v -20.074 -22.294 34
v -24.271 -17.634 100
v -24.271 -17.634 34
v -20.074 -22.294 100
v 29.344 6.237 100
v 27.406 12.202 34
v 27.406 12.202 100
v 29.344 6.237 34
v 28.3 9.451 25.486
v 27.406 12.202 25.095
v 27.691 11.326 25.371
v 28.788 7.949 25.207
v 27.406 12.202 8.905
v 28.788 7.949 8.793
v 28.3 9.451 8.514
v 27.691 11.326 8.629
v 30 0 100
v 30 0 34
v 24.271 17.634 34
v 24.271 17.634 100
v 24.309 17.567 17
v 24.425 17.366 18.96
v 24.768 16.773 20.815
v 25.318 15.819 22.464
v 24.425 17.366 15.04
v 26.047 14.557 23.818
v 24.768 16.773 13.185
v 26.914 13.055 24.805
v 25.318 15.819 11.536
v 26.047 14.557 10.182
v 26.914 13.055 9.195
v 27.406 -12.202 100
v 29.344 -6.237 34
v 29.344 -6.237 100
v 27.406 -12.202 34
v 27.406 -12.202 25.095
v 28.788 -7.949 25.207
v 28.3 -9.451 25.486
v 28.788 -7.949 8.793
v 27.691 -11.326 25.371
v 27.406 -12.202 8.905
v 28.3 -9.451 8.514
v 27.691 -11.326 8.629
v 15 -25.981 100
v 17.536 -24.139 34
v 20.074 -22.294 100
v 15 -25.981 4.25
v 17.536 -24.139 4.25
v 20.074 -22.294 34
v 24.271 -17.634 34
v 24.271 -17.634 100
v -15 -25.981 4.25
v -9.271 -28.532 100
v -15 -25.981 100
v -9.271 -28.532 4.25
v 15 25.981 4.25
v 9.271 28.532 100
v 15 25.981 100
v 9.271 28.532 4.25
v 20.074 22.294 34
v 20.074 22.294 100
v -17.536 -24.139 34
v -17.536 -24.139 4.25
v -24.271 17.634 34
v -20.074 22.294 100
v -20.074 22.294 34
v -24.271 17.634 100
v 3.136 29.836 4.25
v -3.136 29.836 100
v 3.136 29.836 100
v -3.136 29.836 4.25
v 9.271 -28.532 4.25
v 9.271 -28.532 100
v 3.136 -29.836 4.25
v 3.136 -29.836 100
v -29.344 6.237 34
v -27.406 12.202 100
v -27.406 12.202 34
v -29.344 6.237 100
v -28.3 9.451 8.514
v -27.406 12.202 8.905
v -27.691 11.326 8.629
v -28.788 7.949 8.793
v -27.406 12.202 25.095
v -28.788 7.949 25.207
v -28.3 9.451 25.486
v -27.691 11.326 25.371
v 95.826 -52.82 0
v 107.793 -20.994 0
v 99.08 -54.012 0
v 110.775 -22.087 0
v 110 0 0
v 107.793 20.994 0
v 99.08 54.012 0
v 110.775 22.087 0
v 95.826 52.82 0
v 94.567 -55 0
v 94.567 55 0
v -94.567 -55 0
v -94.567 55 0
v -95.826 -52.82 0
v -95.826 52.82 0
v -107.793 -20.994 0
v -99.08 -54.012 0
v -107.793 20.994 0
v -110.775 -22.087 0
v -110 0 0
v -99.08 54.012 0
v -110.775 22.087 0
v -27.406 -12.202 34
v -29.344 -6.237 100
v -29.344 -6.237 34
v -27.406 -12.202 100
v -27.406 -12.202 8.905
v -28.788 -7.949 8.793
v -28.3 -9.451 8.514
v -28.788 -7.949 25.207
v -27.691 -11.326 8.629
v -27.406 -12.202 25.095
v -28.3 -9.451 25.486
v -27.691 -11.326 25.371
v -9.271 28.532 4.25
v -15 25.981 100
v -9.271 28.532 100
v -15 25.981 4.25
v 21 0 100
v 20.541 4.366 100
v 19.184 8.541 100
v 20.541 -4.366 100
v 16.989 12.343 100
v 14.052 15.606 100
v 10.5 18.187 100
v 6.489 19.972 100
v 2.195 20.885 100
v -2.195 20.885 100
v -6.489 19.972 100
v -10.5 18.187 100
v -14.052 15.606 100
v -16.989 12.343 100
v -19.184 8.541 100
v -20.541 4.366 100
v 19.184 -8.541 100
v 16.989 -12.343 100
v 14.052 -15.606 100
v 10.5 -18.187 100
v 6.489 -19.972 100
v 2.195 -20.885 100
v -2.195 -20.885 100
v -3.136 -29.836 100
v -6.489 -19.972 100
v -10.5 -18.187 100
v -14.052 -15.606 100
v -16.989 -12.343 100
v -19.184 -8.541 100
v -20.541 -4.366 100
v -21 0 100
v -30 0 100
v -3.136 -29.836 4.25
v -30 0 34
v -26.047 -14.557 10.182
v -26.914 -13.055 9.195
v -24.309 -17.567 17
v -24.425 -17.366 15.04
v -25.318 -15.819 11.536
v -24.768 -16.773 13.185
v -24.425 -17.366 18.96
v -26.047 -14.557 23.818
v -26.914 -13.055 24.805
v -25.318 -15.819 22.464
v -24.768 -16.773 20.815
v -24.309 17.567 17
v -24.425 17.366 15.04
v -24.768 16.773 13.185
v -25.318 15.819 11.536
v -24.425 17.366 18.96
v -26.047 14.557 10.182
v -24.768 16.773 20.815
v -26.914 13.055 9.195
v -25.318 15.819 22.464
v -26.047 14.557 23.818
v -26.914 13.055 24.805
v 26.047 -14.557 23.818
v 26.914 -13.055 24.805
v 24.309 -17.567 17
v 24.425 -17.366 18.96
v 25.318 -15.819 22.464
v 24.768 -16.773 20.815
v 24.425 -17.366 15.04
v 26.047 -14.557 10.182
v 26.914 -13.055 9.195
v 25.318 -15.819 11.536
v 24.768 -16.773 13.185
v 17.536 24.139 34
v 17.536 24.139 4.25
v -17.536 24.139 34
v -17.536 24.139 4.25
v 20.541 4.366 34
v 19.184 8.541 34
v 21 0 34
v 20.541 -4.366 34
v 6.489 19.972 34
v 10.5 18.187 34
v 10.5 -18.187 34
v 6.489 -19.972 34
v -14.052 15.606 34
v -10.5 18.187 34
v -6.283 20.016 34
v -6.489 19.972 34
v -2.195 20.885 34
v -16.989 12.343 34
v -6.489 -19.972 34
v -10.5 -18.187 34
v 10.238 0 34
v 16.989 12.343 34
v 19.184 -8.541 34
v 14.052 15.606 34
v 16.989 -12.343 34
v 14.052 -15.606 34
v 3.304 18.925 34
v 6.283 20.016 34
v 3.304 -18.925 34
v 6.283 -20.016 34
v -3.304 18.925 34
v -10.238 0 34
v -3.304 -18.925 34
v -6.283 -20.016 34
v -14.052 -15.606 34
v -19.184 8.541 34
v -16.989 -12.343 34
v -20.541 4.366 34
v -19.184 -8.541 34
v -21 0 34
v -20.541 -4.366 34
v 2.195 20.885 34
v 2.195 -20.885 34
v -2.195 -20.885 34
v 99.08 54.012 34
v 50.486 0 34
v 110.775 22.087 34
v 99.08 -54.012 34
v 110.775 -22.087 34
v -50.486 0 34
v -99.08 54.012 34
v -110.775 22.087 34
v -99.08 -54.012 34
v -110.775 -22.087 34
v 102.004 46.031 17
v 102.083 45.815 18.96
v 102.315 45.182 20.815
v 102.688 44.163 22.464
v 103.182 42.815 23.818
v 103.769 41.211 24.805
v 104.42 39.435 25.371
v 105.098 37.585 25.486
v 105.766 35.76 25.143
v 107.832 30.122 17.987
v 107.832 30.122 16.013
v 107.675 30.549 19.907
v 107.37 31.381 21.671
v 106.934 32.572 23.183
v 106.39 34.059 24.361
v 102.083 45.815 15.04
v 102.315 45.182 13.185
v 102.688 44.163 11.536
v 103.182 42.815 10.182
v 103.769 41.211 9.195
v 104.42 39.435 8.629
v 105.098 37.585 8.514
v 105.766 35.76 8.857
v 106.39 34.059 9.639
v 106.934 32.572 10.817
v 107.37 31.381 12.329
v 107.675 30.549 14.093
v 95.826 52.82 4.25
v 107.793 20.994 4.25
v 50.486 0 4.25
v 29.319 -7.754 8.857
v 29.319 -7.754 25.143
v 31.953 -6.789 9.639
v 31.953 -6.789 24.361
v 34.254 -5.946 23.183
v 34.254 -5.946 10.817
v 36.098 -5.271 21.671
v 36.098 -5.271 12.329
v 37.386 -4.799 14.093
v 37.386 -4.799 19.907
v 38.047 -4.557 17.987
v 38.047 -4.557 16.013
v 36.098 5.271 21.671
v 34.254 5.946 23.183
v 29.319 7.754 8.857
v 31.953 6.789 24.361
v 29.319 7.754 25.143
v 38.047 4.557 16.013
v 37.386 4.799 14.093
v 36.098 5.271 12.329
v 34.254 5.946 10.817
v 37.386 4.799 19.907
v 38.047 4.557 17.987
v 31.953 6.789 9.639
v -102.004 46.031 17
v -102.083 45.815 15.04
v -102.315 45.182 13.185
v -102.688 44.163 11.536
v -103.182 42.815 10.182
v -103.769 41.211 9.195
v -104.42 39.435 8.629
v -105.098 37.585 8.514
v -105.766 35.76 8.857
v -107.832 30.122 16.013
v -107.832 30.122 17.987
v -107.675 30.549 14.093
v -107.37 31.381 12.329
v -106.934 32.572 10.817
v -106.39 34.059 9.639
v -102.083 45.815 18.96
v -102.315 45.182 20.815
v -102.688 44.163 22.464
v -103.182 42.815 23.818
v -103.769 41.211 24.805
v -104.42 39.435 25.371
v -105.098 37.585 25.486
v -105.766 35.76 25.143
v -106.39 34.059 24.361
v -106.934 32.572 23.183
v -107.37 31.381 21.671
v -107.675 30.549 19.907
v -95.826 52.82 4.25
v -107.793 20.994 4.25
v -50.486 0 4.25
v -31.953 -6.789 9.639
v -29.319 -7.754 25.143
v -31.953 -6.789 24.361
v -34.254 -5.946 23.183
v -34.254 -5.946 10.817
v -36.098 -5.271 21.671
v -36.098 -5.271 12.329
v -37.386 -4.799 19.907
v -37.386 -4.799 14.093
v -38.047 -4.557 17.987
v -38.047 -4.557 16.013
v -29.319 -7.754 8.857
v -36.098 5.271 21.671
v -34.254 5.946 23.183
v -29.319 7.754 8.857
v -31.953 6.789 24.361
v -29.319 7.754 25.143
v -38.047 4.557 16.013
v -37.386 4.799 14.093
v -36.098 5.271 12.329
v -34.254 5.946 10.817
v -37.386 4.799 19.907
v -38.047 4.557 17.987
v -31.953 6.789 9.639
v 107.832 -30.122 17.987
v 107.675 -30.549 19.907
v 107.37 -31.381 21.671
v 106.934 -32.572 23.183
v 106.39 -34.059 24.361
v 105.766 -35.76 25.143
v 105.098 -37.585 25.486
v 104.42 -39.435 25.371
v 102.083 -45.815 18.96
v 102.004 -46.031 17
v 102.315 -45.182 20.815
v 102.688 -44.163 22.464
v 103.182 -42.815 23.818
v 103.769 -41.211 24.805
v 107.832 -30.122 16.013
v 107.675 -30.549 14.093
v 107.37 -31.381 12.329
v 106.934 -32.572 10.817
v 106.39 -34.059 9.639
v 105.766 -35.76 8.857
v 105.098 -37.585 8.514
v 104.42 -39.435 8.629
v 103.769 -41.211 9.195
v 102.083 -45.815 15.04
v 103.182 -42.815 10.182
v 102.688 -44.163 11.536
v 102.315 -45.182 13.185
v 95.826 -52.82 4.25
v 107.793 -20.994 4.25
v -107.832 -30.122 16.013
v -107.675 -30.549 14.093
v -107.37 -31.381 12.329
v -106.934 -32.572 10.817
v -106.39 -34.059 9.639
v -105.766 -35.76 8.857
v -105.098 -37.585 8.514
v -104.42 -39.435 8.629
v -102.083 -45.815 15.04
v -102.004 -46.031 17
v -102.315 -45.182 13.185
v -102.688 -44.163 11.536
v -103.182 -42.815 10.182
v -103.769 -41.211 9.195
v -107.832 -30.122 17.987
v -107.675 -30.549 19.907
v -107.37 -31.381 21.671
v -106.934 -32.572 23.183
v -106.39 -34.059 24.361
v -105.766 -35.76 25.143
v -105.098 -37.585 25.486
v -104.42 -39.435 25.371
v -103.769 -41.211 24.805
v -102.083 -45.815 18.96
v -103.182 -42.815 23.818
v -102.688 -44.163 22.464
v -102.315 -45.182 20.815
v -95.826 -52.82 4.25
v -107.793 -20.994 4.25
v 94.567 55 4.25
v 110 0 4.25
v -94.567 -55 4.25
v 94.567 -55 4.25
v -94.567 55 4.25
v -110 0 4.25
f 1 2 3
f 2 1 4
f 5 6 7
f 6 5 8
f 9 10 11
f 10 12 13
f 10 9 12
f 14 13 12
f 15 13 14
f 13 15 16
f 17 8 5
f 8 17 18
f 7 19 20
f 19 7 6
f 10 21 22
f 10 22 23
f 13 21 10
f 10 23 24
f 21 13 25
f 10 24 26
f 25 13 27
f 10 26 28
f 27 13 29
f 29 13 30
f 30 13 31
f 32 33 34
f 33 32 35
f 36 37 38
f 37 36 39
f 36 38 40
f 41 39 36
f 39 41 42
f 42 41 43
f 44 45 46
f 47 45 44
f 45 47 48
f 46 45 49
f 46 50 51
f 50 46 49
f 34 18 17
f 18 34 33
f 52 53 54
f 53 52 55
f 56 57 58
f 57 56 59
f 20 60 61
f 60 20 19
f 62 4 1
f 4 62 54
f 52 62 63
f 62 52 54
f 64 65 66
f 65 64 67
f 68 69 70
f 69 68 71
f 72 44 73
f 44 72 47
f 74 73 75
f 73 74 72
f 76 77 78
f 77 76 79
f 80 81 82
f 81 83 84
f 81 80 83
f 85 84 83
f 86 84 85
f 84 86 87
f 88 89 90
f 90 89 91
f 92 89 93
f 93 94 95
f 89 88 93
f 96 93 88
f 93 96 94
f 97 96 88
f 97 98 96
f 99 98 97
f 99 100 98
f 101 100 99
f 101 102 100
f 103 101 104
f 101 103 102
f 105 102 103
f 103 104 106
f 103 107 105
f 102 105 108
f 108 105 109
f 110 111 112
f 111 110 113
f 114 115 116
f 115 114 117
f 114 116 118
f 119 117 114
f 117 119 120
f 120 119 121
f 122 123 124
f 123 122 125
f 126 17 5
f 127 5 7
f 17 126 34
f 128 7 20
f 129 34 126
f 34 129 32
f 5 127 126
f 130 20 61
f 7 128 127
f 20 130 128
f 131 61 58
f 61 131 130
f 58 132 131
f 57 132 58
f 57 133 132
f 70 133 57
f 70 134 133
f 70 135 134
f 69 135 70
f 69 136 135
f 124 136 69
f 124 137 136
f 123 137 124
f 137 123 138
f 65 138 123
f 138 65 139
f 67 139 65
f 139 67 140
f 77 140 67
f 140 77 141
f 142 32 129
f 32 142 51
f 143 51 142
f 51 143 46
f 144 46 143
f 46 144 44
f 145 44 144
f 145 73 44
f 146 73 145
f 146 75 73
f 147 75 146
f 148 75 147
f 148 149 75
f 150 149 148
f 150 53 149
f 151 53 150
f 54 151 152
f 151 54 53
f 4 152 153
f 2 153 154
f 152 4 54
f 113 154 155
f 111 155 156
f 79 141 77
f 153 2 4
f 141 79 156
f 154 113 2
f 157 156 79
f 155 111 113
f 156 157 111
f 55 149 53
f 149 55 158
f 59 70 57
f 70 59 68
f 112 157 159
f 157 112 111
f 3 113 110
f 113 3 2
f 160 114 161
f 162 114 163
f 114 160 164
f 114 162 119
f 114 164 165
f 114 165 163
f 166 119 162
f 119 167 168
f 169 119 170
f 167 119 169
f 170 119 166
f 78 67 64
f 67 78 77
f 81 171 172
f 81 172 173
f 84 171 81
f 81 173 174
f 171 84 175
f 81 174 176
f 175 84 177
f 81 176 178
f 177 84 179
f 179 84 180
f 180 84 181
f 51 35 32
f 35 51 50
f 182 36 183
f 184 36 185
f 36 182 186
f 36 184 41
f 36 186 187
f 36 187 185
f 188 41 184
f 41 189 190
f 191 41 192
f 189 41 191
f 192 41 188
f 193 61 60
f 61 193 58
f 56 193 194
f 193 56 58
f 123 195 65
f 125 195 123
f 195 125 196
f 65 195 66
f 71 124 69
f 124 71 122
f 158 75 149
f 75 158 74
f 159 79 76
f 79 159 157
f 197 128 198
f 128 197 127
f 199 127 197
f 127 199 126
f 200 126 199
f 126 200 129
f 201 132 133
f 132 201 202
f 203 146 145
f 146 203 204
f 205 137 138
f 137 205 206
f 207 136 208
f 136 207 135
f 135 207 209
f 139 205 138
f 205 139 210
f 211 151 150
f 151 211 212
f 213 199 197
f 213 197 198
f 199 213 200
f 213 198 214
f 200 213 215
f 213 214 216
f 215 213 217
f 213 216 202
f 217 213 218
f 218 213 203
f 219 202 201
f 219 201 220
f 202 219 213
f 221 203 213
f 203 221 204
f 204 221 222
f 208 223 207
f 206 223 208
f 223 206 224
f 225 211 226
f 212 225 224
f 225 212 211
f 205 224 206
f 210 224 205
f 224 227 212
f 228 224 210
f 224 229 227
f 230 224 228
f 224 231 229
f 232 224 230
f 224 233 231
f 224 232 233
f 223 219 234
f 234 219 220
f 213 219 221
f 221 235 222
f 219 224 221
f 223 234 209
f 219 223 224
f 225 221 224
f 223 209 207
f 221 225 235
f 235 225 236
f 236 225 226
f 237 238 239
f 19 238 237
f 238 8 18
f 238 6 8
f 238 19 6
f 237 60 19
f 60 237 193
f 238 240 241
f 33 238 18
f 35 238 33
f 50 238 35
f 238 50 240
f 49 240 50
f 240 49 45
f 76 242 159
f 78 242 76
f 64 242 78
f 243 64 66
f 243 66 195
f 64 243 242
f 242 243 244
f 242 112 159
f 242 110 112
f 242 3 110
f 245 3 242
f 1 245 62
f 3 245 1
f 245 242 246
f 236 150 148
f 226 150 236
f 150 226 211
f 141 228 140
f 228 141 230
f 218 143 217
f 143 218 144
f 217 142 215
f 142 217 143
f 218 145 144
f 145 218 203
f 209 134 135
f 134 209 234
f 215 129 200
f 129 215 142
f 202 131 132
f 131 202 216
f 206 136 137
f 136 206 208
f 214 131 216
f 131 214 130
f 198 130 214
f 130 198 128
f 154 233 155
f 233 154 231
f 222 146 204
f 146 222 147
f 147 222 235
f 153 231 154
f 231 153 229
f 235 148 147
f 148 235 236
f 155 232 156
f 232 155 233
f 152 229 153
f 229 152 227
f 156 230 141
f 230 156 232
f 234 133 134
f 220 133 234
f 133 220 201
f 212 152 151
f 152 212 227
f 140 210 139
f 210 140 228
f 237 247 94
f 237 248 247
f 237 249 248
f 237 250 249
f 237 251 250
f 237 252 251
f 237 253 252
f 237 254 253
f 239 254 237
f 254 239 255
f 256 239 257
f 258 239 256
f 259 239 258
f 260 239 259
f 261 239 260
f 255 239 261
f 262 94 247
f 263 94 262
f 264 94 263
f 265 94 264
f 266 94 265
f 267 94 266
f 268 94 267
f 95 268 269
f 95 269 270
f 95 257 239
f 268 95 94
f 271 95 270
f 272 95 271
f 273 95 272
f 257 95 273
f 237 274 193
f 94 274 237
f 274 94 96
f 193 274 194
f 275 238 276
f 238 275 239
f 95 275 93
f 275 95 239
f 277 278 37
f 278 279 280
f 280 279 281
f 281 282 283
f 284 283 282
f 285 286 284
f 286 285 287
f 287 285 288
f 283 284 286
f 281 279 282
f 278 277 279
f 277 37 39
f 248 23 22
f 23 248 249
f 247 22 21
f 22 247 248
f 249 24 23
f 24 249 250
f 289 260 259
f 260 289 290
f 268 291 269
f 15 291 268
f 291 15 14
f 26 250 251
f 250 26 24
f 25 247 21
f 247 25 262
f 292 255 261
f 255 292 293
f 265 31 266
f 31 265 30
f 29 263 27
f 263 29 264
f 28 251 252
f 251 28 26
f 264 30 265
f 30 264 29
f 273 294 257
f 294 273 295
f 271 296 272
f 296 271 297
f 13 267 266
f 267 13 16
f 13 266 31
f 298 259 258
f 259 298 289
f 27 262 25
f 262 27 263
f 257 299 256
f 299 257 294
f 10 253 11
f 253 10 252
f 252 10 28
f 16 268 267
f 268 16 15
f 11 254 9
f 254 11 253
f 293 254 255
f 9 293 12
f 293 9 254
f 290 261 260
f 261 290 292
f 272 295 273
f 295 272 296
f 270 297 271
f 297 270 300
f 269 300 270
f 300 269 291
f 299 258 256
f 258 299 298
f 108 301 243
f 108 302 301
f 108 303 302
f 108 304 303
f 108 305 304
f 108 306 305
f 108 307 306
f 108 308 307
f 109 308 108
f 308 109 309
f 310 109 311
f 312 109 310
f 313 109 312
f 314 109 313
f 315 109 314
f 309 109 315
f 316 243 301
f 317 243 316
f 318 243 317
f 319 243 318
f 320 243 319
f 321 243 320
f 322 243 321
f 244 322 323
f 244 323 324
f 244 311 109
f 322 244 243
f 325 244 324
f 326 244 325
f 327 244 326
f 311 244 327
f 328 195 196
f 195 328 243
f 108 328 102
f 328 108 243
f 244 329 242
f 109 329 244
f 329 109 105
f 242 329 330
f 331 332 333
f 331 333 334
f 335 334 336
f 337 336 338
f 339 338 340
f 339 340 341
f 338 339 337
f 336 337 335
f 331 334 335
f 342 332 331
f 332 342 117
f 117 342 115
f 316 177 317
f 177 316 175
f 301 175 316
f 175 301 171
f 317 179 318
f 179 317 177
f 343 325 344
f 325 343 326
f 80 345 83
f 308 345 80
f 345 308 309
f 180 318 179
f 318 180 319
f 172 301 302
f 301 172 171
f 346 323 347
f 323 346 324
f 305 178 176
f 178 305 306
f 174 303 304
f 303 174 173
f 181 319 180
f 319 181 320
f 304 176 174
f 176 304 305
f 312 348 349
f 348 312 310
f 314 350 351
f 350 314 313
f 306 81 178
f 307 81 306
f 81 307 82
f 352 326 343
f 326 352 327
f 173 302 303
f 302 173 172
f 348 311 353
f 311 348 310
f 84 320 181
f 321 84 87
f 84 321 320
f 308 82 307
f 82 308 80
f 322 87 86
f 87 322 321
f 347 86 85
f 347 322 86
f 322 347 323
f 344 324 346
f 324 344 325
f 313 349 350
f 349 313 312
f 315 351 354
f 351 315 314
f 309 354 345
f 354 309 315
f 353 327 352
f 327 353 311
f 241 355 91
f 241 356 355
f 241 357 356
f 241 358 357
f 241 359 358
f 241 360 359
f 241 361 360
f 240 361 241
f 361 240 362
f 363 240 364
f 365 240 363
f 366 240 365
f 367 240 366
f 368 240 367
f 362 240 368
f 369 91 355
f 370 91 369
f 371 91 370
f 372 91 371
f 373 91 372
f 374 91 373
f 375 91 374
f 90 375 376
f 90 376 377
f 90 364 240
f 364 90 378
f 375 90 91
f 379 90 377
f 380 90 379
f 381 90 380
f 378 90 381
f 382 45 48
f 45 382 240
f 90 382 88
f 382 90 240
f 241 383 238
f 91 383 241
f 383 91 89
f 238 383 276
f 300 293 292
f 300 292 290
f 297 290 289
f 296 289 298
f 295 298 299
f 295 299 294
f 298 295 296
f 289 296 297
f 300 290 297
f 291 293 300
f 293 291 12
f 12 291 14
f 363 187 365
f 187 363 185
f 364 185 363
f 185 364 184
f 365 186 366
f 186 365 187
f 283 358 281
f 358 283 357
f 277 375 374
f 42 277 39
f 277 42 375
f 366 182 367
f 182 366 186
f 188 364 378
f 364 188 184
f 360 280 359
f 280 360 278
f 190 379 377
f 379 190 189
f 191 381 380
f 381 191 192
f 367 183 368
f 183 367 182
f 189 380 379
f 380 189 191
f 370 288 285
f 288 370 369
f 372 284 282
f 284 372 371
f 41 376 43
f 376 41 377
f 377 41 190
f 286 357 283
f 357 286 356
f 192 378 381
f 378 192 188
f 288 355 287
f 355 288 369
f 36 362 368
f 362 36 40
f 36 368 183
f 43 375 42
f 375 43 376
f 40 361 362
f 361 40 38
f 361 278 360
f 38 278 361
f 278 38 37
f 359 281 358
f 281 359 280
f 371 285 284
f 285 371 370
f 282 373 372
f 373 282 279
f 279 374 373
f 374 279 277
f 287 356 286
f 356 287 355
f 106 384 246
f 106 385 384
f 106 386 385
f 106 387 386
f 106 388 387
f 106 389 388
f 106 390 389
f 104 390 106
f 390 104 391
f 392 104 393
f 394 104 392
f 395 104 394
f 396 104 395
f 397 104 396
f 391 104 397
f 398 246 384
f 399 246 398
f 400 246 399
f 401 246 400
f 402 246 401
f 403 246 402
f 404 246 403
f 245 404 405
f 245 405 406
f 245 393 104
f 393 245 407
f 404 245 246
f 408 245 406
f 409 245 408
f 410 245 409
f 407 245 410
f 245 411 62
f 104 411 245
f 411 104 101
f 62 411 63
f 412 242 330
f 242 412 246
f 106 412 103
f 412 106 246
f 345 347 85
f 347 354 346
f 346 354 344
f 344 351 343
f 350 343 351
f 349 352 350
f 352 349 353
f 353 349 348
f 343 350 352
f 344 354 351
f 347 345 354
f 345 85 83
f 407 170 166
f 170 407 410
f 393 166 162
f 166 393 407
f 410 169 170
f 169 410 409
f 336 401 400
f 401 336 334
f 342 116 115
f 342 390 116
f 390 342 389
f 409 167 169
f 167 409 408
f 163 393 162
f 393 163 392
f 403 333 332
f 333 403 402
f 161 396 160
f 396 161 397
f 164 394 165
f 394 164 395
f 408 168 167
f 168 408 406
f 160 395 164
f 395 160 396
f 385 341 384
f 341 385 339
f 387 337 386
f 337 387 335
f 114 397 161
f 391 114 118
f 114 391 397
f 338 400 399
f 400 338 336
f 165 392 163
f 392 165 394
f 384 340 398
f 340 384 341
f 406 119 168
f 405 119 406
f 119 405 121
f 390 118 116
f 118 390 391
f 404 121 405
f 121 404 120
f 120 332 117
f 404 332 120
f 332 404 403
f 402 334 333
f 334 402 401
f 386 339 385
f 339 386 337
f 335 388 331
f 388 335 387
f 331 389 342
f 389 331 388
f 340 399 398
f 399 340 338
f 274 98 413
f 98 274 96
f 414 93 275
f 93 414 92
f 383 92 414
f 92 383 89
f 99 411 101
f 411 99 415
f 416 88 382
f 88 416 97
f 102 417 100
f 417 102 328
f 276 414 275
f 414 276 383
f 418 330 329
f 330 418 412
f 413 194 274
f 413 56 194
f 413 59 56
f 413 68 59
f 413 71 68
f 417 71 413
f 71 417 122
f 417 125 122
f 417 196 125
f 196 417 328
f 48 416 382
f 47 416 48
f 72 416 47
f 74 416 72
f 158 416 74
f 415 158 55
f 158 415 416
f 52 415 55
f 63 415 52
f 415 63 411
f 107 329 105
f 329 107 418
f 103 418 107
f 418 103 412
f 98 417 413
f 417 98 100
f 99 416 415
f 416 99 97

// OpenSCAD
spreader_diameter = 8.5;
spreader_angle = 40.24;

for(m=[0:1])
    mirror([0, m, 0])
    for(n=[0:1])
        mirror([n, 0, 0])
        translate([15, -13, 0])
        rotate([0, 0, spreader_angle / 2])
    
        difference() {
            cube([spreader_diameter * 12,
                spreader_diameter * 4,
                spreader_diameter * 4]);
            
            rotate([90, 0, 90])
            translate([spreader_diameter * 2,
                spreader_diameter * 2,
                0])
            cylinder(spreader_diameter * 16,
                spreader_diameter,
                spreader_diameter);
        }

difference() {
    cylinder(spreader_diameter * 0.5, 110, 110);
    translate([-100, 55, -5])
        cube([200, 100, 10]);
    translate([-100, -155, -5])
        cube([200, 100, 10]);
}

difference() {
    translate([0, 0, 0])
        cylinder(100, 30, 30);
    translate([0, 0, spreader_diameter * 4])
        cylinder(100, 21, 21);
}
